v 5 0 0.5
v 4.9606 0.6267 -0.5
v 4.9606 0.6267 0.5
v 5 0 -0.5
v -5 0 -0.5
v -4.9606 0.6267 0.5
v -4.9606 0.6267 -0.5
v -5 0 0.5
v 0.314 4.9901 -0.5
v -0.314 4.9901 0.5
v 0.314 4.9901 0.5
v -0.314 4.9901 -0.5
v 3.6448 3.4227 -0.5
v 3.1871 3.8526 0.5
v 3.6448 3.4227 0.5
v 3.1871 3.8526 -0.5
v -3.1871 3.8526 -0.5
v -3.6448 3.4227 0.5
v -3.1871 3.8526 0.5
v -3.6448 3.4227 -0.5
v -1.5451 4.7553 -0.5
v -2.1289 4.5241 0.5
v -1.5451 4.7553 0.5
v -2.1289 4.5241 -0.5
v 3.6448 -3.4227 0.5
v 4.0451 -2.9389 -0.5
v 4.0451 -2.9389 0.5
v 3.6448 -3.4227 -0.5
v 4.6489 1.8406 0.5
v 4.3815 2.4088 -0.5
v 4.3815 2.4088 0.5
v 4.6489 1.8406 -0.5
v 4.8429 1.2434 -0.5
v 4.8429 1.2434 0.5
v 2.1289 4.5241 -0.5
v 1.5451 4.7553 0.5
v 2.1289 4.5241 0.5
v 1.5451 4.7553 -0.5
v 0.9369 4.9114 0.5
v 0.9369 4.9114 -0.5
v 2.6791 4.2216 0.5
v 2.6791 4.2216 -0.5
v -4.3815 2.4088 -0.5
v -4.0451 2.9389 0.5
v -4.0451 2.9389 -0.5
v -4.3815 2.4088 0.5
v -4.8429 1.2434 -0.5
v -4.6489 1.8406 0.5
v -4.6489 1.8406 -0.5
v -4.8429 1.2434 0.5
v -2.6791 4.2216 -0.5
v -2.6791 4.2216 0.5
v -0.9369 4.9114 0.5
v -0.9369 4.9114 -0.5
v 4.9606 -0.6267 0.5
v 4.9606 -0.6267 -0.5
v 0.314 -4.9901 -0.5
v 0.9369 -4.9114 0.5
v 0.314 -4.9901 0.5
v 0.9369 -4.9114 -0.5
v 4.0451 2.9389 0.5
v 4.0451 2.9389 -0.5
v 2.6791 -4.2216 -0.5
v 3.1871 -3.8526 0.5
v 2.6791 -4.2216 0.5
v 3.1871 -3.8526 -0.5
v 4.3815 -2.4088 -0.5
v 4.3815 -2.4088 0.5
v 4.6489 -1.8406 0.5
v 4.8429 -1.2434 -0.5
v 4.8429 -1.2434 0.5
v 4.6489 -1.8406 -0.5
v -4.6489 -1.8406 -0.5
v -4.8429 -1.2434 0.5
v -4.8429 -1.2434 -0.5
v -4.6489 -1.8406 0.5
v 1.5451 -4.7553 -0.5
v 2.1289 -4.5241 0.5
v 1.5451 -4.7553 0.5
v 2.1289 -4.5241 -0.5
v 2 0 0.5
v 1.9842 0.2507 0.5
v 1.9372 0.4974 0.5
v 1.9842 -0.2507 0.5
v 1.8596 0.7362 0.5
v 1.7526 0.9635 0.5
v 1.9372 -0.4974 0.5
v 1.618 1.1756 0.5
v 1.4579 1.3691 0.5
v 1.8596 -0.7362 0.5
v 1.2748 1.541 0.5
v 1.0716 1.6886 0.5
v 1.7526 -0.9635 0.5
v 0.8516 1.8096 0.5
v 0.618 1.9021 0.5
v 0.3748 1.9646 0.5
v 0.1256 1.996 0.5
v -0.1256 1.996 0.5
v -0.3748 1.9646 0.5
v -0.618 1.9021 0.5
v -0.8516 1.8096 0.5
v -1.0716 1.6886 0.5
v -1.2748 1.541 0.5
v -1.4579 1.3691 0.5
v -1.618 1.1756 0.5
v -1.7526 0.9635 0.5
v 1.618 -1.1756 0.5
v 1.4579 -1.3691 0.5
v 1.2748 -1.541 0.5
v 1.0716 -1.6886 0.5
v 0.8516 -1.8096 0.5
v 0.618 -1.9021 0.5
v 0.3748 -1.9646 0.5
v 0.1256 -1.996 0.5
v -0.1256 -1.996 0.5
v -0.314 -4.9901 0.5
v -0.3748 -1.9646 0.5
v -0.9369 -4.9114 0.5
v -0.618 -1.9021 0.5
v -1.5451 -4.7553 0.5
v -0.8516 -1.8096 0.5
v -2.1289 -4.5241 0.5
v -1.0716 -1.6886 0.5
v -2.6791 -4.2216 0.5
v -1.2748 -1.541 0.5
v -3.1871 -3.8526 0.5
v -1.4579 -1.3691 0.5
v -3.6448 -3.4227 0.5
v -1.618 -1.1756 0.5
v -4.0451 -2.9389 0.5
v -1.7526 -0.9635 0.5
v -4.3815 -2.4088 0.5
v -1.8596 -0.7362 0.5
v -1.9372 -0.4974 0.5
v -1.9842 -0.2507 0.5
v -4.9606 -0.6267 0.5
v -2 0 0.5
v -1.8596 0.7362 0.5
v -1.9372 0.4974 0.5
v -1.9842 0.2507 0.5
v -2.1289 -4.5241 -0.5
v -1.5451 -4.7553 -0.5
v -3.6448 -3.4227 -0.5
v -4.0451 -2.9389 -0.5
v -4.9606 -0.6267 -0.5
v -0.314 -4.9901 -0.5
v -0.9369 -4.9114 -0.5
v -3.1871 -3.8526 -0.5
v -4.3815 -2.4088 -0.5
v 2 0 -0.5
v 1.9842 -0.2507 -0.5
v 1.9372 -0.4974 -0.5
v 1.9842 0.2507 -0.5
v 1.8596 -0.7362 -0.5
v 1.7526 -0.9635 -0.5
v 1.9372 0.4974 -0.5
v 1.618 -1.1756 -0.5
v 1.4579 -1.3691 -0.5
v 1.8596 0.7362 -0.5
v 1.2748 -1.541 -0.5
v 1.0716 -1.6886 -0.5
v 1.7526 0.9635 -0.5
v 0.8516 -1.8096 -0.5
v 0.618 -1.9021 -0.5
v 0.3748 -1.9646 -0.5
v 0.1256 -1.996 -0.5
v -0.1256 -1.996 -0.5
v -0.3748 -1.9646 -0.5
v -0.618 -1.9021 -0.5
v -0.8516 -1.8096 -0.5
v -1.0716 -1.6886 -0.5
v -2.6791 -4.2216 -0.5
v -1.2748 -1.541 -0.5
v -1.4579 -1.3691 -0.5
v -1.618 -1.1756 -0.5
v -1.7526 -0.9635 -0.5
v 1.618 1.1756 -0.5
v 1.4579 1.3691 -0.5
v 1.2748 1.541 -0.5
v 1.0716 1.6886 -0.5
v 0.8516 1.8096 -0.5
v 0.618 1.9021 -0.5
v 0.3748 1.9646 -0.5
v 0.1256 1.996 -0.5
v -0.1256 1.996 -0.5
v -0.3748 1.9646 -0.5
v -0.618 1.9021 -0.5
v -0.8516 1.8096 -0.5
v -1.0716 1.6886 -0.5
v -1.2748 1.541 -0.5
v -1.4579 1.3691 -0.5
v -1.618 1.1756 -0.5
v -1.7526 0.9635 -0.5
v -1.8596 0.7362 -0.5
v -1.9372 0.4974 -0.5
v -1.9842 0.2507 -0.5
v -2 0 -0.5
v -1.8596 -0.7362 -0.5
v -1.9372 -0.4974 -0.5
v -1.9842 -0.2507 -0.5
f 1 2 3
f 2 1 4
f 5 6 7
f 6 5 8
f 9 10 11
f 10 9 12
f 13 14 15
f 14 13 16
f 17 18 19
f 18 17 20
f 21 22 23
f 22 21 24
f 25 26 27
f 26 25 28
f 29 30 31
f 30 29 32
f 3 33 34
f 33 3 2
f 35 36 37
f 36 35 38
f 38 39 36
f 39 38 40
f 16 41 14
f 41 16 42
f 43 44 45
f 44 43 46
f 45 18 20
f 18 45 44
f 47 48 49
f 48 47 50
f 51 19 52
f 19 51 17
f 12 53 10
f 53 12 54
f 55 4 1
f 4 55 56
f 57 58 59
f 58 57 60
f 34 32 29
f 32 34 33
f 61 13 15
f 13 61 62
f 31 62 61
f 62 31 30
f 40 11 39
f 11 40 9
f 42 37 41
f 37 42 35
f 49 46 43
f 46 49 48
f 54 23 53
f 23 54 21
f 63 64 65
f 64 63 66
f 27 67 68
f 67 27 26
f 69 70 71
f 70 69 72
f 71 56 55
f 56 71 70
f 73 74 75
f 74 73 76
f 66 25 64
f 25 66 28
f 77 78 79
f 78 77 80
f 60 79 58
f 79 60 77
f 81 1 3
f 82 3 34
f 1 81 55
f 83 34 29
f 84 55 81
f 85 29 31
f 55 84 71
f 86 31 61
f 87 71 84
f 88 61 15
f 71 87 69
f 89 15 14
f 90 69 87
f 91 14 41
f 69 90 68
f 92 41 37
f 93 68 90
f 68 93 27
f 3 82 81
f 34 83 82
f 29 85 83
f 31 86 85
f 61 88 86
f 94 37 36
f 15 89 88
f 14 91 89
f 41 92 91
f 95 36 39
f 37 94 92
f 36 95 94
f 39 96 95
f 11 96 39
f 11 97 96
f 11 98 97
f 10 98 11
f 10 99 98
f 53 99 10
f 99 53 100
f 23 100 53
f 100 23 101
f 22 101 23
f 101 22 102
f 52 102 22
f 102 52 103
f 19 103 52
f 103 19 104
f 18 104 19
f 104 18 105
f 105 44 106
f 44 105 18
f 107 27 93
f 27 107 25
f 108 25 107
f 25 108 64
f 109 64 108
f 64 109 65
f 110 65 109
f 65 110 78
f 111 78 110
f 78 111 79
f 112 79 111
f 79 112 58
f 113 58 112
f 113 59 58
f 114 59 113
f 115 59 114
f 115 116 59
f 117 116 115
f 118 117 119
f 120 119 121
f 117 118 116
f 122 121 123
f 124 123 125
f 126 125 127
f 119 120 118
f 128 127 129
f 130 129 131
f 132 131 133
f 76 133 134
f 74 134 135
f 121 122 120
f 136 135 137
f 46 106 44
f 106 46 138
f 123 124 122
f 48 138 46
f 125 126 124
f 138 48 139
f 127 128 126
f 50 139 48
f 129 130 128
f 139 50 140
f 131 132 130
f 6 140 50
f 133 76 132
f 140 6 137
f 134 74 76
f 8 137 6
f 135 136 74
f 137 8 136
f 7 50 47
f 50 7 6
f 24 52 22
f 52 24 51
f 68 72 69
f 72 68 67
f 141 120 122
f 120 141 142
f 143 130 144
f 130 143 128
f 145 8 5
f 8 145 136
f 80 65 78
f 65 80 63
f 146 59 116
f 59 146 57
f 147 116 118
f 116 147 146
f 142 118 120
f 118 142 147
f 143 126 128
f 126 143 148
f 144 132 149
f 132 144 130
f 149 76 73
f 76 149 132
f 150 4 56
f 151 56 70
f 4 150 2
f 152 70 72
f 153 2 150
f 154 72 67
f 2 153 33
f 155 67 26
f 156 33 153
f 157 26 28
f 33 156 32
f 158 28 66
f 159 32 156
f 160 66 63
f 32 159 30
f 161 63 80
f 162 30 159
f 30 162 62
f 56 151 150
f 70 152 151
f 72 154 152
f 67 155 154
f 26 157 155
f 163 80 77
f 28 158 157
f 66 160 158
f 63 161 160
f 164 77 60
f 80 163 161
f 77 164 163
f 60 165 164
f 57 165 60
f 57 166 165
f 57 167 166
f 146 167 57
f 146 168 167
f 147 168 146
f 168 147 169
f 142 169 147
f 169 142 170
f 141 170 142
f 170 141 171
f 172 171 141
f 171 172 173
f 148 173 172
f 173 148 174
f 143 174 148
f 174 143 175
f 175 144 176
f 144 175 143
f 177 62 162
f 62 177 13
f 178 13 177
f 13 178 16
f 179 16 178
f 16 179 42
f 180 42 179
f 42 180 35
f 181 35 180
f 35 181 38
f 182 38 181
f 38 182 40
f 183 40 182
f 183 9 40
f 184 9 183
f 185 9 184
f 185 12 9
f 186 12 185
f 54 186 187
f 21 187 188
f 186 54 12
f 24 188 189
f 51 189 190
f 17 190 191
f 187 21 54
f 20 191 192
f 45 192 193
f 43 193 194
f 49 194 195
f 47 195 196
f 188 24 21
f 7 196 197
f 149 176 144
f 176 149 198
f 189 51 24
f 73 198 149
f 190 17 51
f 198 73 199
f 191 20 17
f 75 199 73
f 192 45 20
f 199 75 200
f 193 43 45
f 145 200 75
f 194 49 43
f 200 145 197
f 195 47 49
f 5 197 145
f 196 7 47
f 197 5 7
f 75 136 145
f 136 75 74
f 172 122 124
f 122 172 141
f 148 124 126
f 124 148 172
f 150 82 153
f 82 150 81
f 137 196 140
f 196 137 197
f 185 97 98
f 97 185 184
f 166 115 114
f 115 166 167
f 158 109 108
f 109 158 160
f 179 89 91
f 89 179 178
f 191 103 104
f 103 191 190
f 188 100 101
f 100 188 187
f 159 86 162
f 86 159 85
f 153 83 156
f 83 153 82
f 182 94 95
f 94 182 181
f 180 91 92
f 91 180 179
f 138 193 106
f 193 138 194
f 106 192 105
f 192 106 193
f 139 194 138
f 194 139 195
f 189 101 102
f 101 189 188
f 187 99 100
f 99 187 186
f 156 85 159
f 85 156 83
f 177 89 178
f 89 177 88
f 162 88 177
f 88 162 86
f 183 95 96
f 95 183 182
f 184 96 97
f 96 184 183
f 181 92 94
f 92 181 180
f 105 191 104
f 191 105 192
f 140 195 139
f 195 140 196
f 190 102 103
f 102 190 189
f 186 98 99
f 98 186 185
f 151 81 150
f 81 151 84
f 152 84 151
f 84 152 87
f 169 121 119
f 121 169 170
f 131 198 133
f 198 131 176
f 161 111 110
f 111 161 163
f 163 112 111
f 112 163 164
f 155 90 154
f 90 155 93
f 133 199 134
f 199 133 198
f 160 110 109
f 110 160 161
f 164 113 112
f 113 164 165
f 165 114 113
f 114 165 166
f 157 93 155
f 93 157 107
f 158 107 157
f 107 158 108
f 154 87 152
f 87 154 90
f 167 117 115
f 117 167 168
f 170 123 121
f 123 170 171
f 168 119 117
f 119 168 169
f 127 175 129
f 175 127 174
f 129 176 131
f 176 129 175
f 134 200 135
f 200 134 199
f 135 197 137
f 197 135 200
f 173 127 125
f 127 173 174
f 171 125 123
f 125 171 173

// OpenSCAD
$fn = 50;


difference() {
	union() {
		translate(v = [0, 0, -0.5000000000]) {
			cylinder(h = 1, r = 5.0000000000);
		}
	}
	union() {
		translate(v = [0, 0, -100.0000000000]) {
			cylinder(h = 200, r = 2.0000000000);
		}
	}
}
